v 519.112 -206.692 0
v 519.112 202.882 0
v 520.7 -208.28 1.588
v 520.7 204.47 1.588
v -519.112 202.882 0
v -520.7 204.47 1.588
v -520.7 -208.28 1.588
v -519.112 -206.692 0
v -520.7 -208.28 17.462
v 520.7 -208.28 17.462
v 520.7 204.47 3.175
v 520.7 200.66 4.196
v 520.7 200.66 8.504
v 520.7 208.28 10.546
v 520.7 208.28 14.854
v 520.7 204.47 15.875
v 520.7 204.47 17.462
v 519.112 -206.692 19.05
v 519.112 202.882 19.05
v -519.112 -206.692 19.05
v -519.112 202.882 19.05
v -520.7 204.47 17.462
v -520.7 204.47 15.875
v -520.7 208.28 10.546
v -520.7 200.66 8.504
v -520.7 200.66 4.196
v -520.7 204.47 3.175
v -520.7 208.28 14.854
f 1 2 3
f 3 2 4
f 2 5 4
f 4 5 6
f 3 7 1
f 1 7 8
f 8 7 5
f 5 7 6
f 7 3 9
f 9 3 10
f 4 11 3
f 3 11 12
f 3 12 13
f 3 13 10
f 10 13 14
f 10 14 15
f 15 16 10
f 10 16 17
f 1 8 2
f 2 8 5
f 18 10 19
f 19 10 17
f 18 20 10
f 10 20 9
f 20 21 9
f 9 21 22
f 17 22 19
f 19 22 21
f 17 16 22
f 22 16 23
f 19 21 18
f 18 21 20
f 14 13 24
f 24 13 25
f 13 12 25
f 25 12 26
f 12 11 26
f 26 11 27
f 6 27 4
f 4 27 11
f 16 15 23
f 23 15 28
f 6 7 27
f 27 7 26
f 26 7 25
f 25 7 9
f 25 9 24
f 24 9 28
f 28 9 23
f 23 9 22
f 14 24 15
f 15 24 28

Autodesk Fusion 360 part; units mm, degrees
sketch "Sketch1" plane through (0, 0, 0) normal (0, 0, 1) x (1, 0, 0)
  line L0 (-520.7, 208.28) -> (520.7, 208.28)
  line L1 (520.7, 208.28) -> (520.7, -208.28)
  line L2 (520.7, -208.28) -> (-520.7, -208.28)
  line L3 (-520.7, -208.28) -> (-520.7, 208.28)
  line L4 (-520.7, 208.28) -> (520.7, -208.28) construction
  line L5 (520.7, 208.28) -> (-520.7, -208.28) construction
  dimension "d1" = 416.56
  dimension "d2" = 1041.4
extrude "Extrude1" add sketch "Sketch1" along normal blind 19.05
sketch "Sketch3" plane through (520.7, 0, 0) normal (1, 0, 0) x (0, 1, 0)
  line L0 (-208.28, 0) -> (208.28, 0)
  line L1 (208.28, 0) -> (208.28, 19.05)
  line L2 (208.28, 19.05) -> (-208.28, 19.05)
  line L3 (-208.28, 19.05) -> (-208.28, 0)
  line L4 (204.47, 0) -> (204.47, 3.175)
  line L5 (204.47, 15.875) -> (204.47, 19.05)
  line L6 (204.47, 3.175) -> (200.66, 4.1959)
  line L7 (200.66, 4.1959) -> (200.66, 8.5041)
  line L8 (200.66, 8.5041) -> (204.47, 9.525)
  line L9 (208.28, 10.5459) -> (208.28, 14.8541) construction
  line L10 (208.28, 14.8541) -> (204.47, 15.875)
  line L11 (204.47, 9.525) -> (208.28, 10.5459)
  line L12 (204.47, 0) -> (208.28, 0)
  line L13 (204.47, 19.05) -> (208.28, 19.05)
  line L14 (208.28, 19.05) -> (208.28, 14.8541)
  line L15 (208.28, 0) -> (208.28, 10.5459)
  point P0 (208.28, 0)
  dimension "d25" = 105
  dimension "d27" = 19.05
  dimension "d29" = 6.35
  dimension "d30" = 6.35
  dimension "d31" = 3.81
  dimension "d32" = 3.81
  dimension "d33" = 3.81
extrude "Extrude3" cut sketch "Sketch3" against normal blind 1041.4 contours L0 L1 L4 L6 L7 L8 L11 L12 L15 | L1 L2 L5 L10 L13 L14
chamfer "Chamfer1" distance 1.5875 angle 45 8 edges at (-520.7, -1.905, 19.05) (520.7, -1.905, 19.05) (-520.7, -1.905, 0) (520.7, -1.905, 0) (0, -208.28, 0) (0, -208.28, 19.05) (0, 204.47, 19.05) (0, 204.47, 0)
